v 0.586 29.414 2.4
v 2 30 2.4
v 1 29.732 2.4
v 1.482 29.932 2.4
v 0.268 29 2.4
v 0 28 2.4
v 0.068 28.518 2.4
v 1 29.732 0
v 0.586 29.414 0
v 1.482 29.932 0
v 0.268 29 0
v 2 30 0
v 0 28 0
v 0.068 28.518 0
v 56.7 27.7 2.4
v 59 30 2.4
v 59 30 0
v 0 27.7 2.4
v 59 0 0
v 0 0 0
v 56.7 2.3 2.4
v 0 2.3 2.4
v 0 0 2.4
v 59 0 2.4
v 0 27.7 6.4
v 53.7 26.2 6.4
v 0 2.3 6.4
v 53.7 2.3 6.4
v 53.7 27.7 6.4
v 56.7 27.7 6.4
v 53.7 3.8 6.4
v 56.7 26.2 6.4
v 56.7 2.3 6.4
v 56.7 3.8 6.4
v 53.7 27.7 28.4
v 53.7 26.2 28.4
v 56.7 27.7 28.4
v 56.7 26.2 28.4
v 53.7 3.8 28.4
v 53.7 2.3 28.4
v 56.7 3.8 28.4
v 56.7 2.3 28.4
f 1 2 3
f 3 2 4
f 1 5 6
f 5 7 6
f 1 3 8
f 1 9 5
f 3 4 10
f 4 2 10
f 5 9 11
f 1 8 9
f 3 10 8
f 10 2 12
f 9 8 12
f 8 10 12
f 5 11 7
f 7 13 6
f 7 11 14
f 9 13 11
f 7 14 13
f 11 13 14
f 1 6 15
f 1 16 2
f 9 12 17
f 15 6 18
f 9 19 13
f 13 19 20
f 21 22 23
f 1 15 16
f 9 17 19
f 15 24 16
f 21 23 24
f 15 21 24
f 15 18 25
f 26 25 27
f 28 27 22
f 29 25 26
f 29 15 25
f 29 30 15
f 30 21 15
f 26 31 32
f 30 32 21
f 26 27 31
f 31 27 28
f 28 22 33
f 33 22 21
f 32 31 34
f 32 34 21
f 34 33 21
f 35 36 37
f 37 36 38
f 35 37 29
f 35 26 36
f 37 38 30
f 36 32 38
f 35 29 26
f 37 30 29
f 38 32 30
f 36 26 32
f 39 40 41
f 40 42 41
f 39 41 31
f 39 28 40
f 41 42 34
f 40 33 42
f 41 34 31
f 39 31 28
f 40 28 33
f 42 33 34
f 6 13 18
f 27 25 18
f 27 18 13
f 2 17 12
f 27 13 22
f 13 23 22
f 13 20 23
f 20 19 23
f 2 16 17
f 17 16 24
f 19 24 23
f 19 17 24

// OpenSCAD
// Concept v0; mm. Regenerate using dimensions.json and build.py.
translate([0, 30.0, 40.4]) {
rotate([180, 0, 0]) {
intersection() {
difference() {
difference() {
difference() {
difference() {
union() {
union() {
union() {
translate([0, 0, 38]) {
hull() {
union() {
union() {
union() {
translate([2, 2, 0]) {
cylinder(h=2.4,r=2,$fn=24);
}
translate([2, 88.0, 0]) {
cylinder(h=2.4,r=2,$fn=24);
}
}
translate([105.0, 2, 0]) {
cylinder(h=2.4,r=2,$fn=24);
}
}
translate([105.0, 88.0, 0]) {
cylinder(h=2.4,r=2,$fn=24);
}
}
}
}
translate([0, 2.3, 34.0]) {
cube([56.7, 25.4, 4.05]);
}
}
translate([53.7, 2.3, 12.0]) {
cube([3, 1.5, 26.05]);
}
}
translate([53.7, 26.2, 12.0]) {
cube([3, 1.5, 26.05]);
}
}
translate([6, 82.0, 37.95]) {
cylinder(h=2.5,r=1.7,$fn=48);
}
}
translate([101.0, 82.0, 37.95]) {
cylinder(h=2.5,r=1.7,$fn=48);
}
}
translate([65.0, 7, 37.95]) {
cylinder(h=2.5,r=1.7,$fn=48);
}
}
translate([101.0, 7, 37.95]) {
cylinder(h=2.5,r=1.7,$fn=48);
}
}
translate([0, 0, 0]) {
cube([59.0, 30.0, 41.4]);
}
}
}
}
